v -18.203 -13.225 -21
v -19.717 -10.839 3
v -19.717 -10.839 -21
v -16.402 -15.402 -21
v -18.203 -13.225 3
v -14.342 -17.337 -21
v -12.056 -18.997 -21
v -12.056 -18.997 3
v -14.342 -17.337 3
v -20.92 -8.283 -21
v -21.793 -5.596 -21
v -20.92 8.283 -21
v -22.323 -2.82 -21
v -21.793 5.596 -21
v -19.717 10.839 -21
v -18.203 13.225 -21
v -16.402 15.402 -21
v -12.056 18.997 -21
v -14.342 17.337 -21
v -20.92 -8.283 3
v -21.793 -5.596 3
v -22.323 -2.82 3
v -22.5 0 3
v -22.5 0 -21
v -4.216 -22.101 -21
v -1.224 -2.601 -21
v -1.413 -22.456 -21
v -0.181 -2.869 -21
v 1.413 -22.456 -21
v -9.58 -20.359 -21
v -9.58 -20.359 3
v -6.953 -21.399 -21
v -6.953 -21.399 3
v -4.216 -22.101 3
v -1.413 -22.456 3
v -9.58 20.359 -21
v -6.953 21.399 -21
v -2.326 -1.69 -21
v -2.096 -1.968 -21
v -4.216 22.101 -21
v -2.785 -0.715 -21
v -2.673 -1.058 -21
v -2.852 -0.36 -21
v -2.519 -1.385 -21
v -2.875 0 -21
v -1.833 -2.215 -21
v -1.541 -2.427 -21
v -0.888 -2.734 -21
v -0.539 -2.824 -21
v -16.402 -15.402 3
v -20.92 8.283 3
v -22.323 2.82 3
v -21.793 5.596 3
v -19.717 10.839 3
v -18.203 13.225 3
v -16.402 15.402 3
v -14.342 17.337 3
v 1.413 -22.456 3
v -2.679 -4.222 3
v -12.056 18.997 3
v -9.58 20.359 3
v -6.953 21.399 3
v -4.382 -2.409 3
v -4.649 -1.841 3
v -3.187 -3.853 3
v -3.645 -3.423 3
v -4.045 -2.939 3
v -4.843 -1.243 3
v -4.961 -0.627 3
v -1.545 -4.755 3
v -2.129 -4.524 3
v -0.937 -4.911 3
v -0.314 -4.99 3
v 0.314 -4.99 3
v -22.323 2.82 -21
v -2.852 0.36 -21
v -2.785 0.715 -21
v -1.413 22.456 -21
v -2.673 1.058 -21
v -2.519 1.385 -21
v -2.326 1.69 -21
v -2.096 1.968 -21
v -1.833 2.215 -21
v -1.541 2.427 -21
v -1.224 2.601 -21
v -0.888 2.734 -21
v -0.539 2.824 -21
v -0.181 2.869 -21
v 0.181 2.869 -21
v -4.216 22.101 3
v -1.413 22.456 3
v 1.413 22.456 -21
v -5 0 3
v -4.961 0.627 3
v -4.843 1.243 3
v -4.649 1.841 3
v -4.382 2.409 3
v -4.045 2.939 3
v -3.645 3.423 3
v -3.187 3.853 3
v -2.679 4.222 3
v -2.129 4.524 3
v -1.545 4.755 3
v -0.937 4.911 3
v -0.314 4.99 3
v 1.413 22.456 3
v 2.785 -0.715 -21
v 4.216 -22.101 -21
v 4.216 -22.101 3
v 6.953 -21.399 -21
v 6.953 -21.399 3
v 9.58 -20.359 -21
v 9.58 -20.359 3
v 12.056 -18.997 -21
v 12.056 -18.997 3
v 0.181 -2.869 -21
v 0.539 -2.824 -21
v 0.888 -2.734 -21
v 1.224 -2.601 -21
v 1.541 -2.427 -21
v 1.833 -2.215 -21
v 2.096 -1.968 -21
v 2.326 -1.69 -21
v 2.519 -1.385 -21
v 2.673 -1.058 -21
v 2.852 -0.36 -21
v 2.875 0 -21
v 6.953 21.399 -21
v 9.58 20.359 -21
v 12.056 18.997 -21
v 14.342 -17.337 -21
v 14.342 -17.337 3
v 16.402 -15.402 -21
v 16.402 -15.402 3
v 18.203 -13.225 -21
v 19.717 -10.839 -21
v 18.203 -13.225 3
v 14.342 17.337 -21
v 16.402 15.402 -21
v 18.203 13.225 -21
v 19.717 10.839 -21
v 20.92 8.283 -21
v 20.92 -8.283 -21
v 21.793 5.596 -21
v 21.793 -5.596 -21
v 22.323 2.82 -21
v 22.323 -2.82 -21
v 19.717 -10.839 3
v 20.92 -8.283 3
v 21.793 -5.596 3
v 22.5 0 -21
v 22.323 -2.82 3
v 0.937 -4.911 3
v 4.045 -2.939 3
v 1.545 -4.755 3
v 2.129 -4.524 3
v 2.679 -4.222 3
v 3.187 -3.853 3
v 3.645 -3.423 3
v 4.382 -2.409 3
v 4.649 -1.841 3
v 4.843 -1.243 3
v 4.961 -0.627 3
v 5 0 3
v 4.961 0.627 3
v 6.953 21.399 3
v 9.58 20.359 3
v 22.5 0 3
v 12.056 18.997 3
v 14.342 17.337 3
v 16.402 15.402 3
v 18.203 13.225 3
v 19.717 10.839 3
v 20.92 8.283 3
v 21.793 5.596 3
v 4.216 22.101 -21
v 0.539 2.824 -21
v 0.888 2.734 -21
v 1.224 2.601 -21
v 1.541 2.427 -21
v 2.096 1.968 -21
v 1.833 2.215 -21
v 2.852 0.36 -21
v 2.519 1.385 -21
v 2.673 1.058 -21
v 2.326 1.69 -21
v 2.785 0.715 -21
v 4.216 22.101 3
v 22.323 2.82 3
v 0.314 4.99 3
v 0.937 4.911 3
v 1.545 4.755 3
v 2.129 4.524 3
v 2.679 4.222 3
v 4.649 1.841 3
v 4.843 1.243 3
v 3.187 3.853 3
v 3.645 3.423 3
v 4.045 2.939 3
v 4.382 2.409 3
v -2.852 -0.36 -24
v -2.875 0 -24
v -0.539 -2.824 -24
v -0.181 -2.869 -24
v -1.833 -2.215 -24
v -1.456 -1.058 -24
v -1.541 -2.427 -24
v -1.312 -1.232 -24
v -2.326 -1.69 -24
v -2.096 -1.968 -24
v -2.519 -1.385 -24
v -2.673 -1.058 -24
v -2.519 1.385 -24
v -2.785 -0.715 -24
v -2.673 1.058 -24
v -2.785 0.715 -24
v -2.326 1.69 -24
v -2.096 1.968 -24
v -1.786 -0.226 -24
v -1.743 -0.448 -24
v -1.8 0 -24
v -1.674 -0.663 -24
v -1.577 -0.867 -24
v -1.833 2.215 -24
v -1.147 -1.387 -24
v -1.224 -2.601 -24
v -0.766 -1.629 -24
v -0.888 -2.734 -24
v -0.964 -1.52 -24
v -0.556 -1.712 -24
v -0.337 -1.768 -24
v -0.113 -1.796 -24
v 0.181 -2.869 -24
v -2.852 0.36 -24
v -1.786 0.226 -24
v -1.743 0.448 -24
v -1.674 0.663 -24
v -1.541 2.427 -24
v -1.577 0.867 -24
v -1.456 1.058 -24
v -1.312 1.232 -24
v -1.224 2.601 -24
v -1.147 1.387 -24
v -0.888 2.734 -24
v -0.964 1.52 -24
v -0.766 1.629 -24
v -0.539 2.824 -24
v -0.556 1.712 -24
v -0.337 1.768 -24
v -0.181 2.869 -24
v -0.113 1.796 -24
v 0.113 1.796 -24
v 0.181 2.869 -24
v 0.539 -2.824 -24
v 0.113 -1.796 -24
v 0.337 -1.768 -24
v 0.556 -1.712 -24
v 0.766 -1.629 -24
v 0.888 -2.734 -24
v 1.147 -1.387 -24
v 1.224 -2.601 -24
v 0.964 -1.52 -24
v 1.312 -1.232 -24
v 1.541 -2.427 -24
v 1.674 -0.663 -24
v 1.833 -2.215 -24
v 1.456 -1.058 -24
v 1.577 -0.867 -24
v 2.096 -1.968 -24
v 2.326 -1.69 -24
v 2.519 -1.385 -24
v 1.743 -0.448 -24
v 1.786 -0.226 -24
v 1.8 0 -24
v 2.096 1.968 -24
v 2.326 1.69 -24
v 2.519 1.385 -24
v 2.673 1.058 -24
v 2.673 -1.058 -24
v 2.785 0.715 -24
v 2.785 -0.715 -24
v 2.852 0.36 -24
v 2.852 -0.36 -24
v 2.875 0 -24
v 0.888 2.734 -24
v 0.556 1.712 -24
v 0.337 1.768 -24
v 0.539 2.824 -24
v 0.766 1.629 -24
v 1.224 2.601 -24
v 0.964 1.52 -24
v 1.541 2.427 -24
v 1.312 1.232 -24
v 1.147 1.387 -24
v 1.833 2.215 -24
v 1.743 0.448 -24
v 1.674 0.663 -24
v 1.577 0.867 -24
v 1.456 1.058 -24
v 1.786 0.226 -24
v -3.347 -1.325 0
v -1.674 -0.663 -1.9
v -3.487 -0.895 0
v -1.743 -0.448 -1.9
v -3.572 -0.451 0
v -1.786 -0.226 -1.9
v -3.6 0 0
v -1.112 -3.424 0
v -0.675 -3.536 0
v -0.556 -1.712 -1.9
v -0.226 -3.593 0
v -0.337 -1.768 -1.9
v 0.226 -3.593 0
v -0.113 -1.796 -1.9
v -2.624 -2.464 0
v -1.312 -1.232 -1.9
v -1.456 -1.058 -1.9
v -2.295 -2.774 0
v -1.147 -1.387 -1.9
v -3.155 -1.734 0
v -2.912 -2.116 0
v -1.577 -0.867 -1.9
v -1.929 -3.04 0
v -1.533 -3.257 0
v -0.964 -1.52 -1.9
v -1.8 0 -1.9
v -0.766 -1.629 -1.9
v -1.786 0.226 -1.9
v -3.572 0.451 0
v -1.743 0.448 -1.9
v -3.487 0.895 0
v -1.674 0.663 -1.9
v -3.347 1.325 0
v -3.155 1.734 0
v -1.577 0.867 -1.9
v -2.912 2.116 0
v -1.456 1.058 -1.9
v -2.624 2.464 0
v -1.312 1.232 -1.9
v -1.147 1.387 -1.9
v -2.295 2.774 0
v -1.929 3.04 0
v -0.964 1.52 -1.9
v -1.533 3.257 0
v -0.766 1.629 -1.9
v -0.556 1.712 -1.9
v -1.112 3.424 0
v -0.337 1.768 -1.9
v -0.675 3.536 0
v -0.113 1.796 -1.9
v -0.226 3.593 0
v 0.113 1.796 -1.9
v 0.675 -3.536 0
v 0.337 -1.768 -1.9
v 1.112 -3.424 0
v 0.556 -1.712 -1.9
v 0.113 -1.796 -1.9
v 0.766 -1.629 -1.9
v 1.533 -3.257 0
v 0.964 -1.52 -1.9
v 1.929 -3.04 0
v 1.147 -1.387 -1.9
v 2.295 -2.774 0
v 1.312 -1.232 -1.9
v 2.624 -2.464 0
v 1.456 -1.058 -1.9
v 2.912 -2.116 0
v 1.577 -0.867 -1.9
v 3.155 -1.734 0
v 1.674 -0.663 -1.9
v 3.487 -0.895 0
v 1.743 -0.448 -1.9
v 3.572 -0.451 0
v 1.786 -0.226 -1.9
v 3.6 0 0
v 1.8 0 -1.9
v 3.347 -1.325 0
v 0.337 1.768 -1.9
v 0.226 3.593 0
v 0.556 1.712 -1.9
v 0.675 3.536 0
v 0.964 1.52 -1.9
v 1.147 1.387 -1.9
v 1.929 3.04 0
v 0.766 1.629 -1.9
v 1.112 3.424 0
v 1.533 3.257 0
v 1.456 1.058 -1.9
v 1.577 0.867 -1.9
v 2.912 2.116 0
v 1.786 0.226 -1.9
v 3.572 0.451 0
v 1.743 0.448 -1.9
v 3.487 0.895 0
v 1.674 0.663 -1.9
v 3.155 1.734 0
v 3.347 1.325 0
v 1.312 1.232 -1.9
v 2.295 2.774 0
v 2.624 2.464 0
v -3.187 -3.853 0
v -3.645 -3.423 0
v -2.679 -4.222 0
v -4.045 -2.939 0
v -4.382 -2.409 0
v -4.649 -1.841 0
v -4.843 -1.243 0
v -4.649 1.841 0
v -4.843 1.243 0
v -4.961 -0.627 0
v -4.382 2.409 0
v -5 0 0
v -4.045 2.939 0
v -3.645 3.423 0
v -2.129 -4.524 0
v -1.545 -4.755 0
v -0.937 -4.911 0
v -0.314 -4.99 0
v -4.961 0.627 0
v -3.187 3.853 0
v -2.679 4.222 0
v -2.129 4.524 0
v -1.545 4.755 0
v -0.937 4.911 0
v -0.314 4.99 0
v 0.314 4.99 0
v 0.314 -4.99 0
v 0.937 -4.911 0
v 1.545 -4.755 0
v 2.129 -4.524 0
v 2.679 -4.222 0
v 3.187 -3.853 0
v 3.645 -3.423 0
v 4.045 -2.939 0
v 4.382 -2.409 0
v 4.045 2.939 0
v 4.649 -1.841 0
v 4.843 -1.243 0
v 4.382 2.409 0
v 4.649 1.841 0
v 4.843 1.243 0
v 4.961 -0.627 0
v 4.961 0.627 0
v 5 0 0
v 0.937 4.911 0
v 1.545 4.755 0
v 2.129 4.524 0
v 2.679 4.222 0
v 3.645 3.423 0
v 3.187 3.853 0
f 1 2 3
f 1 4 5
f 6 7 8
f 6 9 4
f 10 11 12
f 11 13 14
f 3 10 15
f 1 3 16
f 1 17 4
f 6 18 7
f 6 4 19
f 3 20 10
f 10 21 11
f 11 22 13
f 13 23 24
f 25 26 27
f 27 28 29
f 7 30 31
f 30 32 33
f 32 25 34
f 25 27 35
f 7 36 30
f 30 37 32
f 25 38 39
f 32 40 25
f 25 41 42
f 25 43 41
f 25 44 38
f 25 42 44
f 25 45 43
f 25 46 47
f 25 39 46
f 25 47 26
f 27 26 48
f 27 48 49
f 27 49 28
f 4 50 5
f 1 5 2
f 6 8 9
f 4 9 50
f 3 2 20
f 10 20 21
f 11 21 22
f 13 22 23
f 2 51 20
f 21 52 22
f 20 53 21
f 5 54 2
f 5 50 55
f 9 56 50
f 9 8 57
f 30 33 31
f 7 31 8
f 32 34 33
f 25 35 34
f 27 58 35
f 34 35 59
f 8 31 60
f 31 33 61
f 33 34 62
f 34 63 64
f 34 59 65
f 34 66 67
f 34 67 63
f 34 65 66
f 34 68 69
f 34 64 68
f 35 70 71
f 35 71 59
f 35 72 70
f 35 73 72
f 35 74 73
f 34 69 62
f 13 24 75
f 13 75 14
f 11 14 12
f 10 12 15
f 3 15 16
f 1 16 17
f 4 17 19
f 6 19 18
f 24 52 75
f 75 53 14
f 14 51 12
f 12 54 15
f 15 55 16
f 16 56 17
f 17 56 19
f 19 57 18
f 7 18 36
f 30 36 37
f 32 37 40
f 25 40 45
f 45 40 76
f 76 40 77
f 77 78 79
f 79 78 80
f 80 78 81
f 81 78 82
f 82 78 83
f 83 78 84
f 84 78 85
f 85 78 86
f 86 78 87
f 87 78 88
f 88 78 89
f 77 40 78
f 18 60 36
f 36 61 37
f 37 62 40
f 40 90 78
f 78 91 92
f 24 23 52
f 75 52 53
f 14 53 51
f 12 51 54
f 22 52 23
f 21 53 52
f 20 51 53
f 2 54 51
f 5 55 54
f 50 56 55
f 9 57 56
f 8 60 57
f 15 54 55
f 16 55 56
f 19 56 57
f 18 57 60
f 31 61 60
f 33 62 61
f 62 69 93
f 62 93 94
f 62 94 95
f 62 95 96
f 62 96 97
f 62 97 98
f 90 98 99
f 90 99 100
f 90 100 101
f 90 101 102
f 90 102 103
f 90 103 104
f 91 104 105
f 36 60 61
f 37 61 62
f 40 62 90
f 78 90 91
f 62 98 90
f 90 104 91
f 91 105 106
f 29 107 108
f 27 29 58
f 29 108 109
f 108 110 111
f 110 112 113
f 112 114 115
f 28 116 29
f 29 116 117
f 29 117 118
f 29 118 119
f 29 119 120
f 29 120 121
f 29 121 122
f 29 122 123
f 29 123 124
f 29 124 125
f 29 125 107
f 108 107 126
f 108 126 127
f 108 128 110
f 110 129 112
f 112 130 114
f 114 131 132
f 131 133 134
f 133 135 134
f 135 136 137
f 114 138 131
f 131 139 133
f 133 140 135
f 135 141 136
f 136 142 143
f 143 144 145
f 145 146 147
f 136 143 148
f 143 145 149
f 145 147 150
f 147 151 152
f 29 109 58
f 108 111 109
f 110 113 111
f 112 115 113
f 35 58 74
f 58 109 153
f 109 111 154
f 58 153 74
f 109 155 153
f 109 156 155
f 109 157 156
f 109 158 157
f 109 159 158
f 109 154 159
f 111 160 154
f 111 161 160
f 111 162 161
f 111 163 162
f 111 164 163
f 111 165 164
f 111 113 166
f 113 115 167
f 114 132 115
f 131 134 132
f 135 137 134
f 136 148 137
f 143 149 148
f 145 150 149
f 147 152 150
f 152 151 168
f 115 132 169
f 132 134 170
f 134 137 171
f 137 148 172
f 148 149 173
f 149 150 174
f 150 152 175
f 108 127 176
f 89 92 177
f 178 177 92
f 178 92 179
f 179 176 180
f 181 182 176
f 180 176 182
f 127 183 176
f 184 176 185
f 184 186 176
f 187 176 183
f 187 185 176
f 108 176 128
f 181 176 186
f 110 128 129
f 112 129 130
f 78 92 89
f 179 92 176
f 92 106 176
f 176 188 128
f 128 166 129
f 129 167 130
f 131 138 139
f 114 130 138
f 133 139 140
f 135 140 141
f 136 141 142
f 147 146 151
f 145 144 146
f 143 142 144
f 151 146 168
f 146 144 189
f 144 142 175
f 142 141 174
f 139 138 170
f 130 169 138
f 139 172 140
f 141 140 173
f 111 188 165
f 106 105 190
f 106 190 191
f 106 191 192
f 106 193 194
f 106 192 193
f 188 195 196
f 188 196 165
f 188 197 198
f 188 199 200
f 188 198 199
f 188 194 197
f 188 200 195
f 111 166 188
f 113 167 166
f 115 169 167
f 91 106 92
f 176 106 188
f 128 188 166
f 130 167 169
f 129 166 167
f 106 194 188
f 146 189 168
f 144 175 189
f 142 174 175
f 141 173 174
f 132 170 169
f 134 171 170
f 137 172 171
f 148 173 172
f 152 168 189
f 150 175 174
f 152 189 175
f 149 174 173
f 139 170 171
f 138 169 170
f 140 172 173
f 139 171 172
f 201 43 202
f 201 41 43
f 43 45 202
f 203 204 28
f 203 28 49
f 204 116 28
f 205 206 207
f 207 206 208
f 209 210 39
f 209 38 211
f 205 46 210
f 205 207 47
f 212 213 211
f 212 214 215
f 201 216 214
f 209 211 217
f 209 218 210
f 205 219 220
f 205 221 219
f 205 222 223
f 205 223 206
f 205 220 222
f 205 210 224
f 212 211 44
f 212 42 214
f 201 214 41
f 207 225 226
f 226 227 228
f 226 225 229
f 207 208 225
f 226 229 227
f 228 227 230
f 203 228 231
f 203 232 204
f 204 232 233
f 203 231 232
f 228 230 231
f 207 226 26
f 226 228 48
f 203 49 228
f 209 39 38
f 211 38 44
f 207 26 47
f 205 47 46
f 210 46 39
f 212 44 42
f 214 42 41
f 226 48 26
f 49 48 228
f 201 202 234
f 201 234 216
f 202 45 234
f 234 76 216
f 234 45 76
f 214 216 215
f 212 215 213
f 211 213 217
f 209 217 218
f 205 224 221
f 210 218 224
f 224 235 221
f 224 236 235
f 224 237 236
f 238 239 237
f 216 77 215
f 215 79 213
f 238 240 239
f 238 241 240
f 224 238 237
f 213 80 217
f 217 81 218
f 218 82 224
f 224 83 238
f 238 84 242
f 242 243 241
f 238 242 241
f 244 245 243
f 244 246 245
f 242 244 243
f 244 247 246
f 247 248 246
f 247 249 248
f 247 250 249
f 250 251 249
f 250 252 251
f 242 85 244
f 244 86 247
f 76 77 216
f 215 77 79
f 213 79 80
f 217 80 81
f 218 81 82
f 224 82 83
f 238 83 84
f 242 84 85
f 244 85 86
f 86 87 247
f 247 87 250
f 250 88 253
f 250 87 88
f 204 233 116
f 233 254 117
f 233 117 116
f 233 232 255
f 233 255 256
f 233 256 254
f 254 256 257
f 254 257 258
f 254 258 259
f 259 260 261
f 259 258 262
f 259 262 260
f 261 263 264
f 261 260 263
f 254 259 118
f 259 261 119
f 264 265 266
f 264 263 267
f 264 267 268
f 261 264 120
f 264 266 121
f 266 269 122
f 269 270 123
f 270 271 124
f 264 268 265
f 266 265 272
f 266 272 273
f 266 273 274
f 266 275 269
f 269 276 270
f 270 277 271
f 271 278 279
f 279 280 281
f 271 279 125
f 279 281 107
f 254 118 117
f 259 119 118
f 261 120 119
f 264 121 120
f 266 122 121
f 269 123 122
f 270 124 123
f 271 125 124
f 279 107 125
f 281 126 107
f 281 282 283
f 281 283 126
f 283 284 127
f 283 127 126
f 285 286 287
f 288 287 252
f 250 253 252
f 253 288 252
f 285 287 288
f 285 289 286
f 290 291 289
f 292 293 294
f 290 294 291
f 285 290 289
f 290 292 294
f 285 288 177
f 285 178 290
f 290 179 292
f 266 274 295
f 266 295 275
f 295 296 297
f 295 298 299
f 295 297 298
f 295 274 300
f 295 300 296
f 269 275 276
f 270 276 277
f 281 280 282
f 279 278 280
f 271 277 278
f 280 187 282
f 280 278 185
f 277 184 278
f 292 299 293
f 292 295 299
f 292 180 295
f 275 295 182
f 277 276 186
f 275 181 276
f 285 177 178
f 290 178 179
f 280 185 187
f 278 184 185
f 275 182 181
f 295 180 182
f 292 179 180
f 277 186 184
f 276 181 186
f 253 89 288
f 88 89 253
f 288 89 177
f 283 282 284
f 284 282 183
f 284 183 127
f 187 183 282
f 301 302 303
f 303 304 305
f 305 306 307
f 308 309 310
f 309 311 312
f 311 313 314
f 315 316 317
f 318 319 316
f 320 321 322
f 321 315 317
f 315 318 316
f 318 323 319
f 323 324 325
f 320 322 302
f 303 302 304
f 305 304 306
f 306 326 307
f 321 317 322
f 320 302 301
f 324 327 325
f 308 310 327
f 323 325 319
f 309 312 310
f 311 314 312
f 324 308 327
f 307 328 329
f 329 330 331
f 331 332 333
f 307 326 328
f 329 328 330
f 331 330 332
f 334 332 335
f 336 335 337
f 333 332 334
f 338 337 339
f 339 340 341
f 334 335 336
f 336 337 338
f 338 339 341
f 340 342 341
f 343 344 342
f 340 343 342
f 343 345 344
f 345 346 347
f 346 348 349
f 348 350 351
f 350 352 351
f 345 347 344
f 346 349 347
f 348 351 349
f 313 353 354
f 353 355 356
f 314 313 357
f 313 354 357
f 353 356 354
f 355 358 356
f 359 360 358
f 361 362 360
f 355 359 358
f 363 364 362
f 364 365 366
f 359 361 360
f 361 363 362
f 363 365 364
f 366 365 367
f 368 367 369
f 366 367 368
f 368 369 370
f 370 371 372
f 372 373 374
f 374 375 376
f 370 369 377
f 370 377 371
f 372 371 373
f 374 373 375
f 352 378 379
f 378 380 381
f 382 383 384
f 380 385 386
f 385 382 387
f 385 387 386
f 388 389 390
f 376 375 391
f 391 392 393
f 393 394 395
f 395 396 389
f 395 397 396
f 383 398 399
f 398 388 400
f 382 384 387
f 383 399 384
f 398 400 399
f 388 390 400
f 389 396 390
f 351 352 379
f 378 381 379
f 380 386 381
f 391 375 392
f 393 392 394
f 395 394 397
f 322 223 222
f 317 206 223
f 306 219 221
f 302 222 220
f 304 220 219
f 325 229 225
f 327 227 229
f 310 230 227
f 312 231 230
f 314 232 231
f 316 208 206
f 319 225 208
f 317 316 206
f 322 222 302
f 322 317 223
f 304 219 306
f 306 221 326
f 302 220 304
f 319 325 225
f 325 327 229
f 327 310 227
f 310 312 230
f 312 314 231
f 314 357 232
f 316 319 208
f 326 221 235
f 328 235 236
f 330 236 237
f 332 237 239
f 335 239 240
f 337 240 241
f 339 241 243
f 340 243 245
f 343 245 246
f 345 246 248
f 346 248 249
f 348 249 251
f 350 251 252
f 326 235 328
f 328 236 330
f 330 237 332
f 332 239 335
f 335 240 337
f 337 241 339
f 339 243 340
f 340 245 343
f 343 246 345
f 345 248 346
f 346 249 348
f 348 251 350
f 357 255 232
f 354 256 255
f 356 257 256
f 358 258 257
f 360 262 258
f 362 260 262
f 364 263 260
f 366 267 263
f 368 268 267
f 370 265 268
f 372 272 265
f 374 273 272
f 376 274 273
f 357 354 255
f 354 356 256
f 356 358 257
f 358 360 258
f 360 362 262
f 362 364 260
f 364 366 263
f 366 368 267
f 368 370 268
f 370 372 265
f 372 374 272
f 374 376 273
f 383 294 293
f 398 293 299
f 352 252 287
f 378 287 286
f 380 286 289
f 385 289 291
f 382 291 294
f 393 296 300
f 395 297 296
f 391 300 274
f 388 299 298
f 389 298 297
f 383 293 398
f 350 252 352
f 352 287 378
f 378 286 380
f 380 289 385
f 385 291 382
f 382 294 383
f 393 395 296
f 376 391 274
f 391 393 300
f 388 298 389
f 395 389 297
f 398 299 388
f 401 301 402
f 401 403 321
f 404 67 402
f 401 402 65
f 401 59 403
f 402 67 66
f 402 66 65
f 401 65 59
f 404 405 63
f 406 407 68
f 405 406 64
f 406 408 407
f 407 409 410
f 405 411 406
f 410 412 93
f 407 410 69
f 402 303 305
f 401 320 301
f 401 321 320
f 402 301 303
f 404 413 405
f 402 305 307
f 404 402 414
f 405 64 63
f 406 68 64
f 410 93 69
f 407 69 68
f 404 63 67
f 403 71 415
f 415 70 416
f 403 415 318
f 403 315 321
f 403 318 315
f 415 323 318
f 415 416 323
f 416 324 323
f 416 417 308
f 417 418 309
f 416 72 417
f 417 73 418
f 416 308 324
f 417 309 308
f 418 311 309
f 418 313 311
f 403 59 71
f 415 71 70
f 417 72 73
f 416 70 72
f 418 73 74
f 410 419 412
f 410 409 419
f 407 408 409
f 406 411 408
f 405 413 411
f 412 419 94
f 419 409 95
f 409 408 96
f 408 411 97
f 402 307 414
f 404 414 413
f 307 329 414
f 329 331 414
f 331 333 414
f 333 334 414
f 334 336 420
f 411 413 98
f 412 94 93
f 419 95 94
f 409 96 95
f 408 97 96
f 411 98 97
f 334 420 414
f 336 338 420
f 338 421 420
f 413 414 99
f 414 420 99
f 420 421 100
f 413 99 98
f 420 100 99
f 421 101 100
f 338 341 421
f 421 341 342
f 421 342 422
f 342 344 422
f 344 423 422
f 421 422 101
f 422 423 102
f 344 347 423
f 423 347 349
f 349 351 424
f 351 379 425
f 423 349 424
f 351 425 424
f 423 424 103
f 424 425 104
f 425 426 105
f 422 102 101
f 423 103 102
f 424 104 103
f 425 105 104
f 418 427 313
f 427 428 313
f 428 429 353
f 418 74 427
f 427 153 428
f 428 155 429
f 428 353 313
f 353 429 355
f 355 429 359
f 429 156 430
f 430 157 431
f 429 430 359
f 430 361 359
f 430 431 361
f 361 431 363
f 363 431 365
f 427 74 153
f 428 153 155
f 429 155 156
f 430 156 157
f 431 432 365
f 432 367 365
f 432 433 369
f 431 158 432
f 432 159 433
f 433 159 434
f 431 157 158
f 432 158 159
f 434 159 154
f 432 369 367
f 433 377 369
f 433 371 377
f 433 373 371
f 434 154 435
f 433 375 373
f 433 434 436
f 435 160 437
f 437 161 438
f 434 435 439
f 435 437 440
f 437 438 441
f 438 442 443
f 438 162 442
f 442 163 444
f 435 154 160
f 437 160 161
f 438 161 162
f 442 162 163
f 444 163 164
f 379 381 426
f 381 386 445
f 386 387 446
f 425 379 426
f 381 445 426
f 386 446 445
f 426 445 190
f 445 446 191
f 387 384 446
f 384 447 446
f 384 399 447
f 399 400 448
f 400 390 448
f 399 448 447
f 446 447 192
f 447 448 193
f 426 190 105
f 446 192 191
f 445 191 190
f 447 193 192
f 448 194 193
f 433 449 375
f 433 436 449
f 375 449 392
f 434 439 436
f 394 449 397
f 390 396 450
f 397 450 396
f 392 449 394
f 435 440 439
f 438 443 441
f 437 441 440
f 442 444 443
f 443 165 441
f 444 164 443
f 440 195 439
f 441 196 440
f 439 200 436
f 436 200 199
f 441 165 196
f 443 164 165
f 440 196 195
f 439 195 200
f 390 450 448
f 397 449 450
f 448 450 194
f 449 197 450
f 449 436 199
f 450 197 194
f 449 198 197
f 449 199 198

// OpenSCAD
$fn = 50;

difference() {
	union() {
		translate(v = [0, 0, -21.0]) {
			cylinder(h = 24, r = 22.5);
		}
		#translate(v = [0, 0, -24.0]) {
			cylinder(h = 24, r = 2.875);
		}
	}
	union() {
		translate(v = [0, 0, 0]) {
			rotate(a = [0, 0, 0]) {
				difference() {
					union() {
						translate(v = [0, 0, -24.0]) {
							cylinder(h = 24, r = 1.5);
						}
						translate(v = [0, 0, -1.9]) {
							cylinder(h = 1.9, r1 = 1.8, r2 = 3.6);
						}
						translate(v = [0, 0, -24.0]) {
							cylinder(h = 24, r = 1.8);
						}
						translate(v = [0, 0, -24.0]) {
							cylinder(h = 24, r = 1.5);
						}
					}
					union();
				}
			}
		}
		#cylinder(h = 3, r = 5.0);
	}
}
